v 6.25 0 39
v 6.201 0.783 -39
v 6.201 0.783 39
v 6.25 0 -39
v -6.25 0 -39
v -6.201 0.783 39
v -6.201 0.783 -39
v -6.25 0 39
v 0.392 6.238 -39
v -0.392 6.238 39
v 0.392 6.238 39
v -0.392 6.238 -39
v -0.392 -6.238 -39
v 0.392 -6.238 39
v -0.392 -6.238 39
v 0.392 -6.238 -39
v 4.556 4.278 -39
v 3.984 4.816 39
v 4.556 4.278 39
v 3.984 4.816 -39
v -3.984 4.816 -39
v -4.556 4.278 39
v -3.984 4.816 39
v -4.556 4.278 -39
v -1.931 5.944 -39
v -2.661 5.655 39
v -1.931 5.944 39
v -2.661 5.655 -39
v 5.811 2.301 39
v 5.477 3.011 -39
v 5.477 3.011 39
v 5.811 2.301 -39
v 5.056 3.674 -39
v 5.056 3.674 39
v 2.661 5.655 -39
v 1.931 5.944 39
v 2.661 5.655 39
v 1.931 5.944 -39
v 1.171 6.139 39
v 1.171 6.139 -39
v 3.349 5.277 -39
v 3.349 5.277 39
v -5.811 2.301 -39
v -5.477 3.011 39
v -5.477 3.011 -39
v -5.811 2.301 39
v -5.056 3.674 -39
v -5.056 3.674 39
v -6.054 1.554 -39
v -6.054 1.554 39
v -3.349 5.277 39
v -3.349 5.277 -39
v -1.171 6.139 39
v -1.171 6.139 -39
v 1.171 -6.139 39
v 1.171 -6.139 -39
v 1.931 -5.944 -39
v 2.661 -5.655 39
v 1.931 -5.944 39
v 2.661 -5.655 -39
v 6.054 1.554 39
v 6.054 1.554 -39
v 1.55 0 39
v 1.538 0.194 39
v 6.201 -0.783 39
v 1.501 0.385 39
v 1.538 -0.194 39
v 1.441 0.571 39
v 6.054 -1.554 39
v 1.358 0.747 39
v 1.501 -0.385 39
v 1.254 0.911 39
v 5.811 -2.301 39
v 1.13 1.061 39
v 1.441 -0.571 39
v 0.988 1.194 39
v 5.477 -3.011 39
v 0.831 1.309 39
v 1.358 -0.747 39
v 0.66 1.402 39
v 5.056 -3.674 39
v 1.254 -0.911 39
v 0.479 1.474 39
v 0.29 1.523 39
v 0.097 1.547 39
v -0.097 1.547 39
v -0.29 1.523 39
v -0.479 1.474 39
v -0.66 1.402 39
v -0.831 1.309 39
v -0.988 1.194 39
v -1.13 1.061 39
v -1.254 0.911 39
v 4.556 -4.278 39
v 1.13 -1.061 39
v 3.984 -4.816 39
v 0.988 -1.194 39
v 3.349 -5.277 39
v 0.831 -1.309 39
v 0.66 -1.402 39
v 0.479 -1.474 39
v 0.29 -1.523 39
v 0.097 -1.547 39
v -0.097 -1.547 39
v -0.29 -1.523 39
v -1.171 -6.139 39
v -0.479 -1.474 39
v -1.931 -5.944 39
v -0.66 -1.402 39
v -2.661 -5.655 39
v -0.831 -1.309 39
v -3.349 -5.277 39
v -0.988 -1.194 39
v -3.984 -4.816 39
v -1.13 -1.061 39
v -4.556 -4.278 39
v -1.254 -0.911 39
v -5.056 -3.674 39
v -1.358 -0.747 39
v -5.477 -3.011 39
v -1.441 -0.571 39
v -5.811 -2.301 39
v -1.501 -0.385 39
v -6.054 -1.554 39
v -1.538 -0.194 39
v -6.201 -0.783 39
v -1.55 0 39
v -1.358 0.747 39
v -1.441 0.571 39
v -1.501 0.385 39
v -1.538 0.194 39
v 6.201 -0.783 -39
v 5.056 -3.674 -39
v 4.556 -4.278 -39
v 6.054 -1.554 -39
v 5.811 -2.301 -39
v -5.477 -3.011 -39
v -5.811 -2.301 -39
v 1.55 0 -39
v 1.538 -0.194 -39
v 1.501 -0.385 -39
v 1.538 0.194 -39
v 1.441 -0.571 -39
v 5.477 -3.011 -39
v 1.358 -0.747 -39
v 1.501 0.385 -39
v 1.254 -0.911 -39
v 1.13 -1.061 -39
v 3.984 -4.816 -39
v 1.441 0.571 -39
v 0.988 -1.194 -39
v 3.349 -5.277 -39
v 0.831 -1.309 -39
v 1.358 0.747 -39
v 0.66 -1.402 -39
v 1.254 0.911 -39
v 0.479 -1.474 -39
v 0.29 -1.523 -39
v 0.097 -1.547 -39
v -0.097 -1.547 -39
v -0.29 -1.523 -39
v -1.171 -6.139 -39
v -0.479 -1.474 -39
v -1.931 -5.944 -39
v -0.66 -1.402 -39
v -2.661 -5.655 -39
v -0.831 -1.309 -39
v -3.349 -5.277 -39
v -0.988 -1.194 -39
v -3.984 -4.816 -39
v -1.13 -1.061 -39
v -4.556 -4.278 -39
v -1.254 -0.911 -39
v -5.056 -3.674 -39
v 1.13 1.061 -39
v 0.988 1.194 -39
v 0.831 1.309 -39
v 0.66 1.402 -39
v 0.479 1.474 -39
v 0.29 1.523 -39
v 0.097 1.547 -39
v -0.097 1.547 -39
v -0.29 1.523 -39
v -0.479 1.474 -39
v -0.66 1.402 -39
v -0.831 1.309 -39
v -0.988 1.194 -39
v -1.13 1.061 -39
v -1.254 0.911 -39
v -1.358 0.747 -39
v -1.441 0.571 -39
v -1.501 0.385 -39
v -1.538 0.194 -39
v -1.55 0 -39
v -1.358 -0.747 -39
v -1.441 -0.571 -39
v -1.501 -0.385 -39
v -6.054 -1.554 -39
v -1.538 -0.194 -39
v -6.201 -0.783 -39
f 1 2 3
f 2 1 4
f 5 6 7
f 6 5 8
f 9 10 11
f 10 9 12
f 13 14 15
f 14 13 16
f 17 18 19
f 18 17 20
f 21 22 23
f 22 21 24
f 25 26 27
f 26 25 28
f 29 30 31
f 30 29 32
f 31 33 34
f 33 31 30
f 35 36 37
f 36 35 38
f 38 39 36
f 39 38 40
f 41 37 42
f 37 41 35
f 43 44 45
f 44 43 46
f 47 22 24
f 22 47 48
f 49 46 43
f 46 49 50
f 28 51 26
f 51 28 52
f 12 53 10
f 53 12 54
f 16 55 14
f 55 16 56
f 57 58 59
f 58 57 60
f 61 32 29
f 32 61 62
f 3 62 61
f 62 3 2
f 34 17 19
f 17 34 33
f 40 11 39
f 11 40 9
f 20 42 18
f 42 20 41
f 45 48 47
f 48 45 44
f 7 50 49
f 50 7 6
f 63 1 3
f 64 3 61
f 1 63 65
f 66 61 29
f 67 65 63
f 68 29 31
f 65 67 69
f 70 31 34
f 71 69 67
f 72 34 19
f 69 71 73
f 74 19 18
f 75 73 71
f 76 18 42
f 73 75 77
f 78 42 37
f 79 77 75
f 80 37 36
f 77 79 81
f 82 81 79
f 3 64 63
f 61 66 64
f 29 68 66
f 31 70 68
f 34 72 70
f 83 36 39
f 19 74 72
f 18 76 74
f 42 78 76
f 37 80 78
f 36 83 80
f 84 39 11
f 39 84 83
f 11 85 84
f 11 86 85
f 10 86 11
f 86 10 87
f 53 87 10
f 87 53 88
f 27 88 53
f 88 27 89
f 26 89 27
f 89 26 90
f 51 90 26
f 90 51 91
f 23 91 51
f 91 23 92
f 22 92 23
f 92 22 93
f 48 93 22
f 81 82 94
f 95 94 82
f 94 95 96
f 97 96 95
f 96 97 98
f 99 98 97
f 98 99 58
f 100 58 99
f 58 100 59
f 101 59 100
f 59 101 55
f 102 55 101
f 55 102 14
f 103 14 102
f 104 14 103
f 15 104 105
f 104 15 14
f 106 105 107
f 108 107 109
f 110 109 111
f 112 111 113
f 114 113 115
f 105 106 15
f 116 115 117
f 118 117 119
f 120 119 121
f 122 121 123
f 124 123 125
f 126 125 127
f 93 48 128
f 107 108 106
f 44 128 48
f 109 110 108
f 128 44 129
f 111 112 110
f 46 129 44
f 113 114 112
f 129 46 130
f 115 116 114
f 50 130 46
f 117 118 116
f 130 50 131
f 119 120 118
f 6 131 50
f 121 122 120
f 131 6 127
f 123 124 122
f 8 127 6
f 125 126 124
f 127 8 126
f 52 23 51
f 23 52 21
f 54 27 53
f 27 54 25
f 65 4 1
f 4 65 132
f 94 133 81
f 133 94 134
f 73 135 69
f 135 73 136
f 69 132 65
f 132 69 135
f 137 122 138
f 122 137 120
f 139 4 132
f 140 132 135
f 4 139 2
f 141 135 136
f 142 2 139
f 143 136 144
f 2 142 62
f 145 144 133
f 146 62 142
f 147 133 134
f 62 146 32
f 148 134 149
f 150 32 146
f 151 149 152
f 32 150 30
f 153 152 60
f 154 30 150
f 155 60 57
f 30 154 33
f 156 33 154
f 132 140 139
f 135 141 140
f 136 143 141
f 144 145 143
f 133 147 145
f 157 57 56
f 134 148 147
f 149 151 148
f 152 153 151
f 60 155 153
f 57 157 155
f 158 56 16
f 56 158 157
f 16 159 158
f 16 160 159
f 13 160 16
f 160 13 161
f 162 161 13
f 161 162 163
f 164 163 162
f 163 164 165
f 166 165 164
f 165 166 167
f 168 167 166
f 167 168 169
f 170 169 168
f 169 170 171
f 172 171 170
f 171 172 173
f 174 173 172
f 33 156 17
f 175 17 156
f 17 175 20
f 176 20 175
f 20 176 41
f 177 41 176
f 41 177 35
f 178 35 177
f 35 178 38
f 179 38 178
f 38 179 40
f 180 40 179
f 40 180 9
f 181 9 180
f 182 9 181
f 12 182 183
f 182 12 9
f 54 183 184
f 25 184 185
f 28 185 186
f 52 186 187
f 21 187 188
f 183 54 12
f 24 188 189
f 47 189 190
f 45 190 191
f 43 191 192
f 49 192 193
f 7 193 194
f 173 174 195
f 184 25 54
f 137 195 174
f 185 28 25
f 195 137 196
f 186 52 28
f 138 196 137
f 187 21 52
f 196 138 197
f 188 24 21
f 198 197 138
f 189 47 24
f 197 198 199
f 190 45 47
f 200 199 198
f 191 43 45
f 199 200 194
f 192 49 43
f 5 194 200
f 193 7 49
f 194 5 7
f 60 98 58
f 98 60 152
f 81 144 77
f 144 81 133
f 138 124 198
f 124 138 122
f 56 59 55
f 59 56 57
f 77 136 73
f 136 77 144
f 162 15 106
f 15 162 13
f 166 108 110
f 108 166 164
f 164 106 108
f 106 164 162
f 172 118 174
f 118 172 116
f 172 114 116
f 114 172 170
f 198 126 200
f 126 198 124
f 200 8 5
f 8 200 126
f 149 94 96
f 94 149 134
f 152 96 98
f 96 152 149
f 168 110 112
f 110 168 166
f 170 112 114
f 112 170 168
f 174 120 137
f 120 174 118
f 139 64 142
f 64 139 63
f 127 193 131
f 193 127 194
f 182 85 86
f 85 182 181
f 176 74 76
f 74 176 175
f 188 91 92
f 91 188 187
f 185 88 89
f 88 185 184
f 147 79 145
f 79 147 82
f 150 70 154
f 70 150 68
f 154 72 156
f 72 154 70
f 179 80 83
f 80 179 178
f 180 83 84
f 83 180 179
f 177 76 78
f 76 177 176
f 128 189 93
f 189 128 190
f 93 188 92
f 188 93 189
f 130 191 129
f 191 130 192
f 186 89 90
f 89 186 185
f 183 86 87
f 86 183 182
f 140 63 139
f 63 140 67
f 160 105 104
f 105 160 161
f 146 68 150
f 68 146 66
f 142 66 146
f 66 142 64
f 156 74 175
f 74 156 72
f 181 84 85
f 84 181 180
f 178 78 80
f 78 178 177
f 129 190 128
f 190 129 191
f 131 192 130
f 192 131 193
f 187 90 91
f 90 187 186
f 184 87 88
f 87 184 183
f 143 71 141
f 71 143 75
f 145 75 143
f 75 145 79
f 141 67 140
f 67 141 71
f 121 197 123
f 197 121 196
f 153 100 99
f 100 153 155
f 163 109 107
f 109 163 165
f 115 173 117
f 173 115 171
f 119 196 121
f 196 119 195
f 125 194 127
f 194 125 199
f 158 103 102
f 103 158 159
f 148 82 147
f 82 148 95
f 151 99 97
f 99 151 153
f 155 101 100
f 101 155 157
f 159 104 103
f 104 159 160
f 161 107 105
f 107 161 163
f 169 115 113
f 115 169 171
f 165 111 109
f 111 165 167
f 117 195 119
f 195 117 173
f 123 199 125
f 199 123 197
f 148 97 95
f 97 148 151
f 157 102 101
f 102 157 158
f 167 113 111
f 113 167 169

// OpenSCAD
$fn = 50;


difference() {
	union() {
		translate(v = [0, 0, -39.0000000000]) {
			cylinder(h = 78, r = 6.2500000000);
		}
	}
	union() {
		translate(v = [0, 0, -100.0000000000]) {
			cylinder(h = 200, r = 1.5500000000);
		}
	}
}
